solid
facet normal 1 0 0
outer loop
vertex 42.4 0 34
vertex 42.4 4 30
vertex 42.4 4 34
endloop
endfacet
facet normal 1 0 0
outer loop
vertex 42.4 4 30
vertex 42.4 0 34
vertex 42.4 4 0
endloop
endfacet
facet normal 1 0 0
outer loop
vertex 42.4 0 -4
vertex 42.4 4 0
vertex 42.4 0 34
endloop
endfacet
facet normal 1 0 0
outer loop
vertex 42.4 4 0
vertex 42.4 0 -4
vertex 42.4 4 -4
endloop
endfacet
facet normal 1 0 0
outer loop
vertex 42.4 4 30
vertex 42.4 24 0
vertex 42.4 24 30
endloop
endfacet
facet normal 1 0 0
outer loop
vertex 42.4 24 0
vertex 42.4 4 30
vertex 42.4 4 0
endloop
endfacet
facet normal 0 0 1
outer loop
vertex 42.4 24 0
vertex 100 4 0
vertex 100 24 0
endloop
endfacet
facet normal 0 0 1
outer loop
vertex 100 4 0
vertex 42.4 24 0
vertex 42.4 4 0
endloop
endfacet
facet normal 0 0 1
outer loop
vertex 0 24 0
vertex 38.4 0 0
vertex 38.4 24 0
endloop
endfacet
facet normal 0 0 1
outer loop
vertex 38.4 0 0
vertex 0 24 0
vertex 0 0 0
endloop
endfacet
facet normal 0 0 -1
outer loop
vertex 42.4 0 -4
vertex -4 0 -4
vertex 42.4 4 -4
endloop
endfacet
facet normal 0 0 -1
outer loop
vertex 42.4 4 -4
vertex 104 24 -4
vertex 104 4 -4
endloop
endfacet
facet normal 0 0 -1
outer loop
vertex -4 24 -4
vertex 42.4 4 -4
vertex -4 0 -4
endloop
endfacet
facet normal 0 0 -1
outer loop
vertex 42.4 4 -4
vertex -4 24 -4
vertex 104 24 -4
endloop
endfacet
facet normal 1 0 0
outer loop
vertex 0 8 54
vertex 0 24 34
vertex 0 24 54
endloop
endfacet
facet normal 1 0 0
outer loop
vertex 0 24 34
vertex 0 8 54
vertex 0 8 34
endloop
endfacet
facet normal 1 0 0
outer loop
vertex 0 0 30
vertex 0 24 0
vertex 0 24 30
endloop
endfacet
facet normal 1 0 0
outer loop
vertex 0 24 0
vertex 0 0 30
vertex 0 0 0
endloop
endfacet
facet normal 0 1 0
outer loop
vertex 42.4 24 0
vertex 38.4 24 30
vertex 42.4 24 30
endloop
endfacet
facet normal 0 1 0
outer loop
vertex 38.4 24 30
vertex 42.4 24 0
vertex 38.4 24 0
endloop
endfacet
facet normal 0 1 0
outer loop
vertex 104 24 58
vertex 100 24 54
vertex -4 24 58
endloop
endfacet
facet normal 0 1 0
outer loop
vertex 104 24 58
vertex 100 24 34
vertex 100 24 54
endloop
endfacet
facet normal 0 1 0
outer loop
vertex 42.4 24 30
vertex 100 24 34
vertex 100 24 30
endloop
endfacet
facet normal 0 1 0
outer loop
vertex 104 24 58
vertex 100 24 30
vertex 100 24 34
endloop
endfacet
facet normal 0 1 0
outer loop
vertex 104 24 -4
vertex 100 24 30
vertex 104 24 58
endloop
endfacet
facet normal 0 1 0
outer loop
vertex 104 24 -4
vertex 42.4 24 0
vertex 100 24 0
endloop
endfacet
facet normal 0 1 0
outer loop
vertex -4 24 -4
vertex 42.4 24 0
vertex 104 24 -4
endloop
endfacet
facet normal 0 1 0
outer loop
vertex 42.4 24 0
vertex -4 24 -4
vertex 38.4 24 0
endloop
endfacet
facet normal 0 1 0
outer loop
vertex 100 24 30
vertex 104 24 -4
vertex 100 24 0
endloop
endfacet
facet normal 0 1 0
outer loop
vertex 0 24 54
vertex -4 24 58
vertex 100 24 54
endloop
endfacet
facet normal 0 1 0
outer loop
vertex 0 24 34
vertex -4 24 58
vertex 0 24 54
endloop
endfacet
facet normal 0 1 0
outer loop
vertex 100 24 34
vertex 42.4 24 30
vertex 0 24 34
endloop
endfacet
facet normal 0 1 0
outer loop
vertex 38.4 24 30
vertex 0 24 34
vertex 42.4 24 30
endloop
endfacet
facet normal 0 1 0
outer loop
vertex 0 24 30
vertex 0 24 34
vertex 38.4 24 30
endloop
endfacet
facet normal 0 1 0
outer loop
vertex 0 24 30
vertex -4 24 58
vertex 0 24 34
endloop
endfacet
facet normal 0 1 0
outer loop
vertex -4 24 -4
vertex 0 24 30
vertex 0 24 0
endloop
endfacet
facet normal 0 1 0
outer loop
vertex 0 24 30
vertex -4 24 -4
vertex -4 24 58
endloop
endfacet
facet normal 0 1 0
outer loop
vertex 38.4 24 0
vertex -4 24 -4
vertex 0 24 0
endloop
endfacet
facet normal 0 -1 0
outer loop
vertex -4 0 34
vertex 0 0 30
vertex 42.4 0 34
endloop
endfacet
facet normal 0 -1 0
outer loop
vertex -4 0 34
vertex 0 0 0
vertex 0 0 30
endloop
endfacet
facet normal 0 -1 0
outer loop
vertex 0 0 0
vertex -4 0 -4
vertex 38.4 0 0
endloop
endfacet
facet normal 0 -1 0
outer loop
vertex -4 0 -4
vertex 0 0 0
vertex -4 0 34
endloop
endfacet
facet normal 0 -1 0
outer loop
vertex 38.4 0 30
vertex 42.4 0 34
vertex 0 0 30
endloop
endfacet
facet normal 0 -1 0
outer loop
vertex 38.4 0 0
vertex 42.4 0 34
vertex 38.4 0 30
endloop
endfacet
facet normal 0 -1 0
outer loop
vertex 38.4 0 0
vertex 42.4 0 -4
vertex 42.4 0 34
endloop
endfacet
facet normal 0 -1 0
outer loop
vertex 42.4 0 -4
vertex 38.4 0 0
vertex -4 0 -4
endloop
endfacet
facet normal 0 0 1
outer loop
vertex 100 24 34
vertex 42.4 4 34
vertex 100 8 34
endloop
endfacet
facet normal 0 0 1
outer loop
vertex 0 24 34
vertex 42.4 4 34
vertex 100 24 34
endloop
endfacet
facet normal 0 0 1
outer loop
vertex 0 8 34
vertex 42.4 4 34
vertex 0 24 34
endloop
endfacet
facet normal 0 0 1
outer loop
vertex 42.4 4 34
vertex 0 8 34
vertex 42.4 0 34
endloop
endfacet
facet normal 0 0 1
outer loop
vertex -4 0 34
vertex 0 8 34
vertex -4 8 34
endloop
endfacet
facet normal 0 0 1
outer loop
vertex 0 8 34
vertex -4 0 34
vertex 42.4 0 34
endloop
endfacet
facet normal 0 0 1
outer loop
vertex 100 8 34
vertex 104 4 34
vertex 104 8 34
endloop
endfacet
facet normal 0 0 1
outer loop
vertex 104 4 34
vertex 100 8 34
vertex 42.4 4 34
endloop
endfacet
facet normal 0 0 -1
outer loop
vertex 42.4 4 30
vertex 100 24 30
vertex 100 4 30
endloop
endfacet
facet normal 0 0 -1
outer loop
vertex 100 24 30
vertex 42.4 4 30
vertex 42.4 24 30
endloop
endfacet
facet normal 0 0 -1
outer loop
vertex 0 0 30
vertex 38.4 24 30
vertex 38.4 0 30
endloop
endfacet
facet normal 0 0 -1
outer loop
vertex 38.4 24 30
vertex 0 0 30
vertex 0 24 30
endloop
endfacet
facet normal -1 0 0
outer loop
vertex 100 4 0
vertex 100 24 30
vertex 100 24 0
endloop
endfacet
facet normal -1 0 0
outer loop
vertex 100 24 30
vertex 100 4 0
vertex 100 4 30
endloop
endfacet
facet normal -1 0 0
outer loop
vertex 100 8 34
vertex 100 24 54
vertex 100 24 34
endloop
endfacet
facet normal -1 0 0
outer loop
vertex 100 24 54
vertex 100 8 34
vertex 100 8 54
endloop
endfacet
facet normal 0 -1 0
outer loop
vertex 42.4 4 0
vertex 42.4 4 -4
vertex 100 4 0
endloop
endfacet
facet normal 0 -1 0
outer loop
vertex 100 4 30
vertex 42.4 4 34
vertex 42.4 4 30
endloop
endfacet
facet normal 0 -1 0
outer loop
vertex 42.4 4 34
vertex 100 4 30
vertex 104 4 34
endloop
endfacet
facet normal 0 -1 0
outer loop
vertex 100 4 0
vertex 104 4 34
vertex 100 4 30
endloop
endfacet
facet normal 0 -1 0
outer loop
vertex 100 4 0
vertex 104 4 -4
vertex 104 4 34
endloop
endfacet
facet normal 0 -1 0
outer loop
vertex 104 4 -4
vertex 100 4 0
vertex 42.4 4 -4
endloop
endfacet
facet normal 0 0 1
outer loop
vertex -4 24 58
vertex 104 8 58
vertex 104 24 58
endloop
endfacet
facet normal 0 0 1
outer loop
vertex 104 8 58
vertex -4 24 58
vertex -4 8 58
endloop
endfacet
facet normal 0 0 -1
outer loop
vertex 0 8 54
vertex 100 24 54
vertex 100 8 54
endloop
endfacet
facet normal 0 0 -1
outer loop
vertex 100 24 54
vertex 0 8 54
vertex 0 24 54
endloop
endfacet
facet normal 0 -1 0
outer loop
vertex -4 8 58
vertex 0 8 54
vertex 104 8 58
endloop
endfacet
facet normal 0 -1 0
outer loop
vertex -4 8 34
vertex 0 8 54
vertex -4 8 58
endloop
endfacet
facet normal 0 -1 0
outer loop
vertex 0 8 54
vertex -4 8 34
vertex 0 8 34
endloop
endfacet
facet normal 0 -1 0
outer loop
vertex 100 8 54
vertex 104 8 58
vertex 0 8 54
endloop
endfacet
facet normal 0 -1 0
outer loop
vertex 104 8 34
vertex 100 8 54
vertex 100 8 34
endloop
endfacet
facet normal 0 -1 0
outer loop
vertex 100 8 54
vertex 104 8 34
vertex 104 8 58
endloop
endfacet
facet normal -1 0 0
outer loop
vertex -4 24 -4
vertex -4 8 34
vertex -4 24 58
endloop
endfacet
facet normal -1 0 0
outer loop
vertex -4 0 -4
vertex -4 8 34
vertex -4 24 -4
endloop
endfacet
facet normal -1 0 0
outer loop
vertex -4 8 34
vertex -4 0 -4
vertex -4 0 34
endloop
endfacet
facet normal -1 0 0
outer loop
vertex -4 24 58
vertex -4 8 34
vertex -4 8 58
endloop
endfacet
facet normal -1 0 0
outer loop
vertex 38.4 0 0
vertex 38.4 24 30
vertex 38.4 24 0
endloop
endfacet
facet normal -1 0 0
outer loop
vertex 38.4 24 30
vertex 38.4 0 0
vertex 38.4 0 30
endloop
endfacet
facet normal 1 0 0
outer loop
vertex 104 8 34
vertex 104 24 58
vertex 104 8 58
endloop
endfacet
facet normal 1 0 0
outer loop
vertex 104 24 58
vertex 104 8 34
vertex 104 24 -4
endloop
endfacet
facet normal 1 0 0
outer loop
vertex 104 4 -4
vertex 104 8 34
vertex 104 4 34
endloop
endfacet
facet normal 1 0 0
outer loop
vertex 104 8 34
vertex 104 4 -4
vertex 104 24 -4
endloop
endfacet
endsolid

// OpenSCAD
// boekenkast
// DVD's: 19cm hoog, 15cm diep, 34+34+6+4+10+14=~1m
// boeken: max 30cm hoog, max 23 diep, 34+34+11=80cm

// Maybe: make everything 2:3?
// .... or 1:618 (or will that make ordering difficult?)

w = 4;
bookdepth = 24;
bookheight = 30;
dvdheight = 19; // vak 20
translate([0, bookdepth-16, bookheight+w]) {
  //cube([50, 16, 19]);
}
translate([50, bookdepth-16, bookheight+w]) {
  //cube([50, 16, 19]);
}
splitat = (100-w)*2/5;
translate([0,0,0]) {
  //cube([splitat, bookdepth, bookheight]);
}
lessdepth = w;
translate([splitat+w, lessdepth, 0]) {
  // 16cm extra to make widths match
  //cube([16+80-splitat, bookdepth-lessdepth, bookheight]);
}

color([.8,.8,.8]) {
  translate([0, 0, -w]) {
    cube([splitat+w, bookdepth, w]);
  }
  translate([0, 0, bookheight]) {
    cube([splitat+w, bookdepth, w]);
  }
  translate([splitat+w, lessdepth, -w]) {
    cube([100-w-splitat, bookdepth-lessdepth, w]);
  }
  translate([splitat+w, lessdepth, bookheight]) {
    cube([100-w-splitat, bookdepth-lessdepth, w]);
  }
  translate([0, bookdepth-16, bookheight+w+20]) {
    cube([100, 16, w]);
  }
}
color([.5,.5,.5]) {
  translate([-w, 0, -w]) {
    cube([w, bookdepth, w+bookheight+w]);
  }
  translate([splitat, 0, 0]) {
    cube([w, bookdepth, bookheight]);
  }
  translate([100, lessdepth, -w]) {
    cube([w, bookdepth-lessdepth, w+bookheight+w]);
  }
  translate([-w, bookdepth-16, bookheight+w]) {
    cube([w, 16, 20+w]);
  }
  translate([100, bookdepth-16, bookheight+w]) {
    cube([w, 16, 20+w]);
  }
}
